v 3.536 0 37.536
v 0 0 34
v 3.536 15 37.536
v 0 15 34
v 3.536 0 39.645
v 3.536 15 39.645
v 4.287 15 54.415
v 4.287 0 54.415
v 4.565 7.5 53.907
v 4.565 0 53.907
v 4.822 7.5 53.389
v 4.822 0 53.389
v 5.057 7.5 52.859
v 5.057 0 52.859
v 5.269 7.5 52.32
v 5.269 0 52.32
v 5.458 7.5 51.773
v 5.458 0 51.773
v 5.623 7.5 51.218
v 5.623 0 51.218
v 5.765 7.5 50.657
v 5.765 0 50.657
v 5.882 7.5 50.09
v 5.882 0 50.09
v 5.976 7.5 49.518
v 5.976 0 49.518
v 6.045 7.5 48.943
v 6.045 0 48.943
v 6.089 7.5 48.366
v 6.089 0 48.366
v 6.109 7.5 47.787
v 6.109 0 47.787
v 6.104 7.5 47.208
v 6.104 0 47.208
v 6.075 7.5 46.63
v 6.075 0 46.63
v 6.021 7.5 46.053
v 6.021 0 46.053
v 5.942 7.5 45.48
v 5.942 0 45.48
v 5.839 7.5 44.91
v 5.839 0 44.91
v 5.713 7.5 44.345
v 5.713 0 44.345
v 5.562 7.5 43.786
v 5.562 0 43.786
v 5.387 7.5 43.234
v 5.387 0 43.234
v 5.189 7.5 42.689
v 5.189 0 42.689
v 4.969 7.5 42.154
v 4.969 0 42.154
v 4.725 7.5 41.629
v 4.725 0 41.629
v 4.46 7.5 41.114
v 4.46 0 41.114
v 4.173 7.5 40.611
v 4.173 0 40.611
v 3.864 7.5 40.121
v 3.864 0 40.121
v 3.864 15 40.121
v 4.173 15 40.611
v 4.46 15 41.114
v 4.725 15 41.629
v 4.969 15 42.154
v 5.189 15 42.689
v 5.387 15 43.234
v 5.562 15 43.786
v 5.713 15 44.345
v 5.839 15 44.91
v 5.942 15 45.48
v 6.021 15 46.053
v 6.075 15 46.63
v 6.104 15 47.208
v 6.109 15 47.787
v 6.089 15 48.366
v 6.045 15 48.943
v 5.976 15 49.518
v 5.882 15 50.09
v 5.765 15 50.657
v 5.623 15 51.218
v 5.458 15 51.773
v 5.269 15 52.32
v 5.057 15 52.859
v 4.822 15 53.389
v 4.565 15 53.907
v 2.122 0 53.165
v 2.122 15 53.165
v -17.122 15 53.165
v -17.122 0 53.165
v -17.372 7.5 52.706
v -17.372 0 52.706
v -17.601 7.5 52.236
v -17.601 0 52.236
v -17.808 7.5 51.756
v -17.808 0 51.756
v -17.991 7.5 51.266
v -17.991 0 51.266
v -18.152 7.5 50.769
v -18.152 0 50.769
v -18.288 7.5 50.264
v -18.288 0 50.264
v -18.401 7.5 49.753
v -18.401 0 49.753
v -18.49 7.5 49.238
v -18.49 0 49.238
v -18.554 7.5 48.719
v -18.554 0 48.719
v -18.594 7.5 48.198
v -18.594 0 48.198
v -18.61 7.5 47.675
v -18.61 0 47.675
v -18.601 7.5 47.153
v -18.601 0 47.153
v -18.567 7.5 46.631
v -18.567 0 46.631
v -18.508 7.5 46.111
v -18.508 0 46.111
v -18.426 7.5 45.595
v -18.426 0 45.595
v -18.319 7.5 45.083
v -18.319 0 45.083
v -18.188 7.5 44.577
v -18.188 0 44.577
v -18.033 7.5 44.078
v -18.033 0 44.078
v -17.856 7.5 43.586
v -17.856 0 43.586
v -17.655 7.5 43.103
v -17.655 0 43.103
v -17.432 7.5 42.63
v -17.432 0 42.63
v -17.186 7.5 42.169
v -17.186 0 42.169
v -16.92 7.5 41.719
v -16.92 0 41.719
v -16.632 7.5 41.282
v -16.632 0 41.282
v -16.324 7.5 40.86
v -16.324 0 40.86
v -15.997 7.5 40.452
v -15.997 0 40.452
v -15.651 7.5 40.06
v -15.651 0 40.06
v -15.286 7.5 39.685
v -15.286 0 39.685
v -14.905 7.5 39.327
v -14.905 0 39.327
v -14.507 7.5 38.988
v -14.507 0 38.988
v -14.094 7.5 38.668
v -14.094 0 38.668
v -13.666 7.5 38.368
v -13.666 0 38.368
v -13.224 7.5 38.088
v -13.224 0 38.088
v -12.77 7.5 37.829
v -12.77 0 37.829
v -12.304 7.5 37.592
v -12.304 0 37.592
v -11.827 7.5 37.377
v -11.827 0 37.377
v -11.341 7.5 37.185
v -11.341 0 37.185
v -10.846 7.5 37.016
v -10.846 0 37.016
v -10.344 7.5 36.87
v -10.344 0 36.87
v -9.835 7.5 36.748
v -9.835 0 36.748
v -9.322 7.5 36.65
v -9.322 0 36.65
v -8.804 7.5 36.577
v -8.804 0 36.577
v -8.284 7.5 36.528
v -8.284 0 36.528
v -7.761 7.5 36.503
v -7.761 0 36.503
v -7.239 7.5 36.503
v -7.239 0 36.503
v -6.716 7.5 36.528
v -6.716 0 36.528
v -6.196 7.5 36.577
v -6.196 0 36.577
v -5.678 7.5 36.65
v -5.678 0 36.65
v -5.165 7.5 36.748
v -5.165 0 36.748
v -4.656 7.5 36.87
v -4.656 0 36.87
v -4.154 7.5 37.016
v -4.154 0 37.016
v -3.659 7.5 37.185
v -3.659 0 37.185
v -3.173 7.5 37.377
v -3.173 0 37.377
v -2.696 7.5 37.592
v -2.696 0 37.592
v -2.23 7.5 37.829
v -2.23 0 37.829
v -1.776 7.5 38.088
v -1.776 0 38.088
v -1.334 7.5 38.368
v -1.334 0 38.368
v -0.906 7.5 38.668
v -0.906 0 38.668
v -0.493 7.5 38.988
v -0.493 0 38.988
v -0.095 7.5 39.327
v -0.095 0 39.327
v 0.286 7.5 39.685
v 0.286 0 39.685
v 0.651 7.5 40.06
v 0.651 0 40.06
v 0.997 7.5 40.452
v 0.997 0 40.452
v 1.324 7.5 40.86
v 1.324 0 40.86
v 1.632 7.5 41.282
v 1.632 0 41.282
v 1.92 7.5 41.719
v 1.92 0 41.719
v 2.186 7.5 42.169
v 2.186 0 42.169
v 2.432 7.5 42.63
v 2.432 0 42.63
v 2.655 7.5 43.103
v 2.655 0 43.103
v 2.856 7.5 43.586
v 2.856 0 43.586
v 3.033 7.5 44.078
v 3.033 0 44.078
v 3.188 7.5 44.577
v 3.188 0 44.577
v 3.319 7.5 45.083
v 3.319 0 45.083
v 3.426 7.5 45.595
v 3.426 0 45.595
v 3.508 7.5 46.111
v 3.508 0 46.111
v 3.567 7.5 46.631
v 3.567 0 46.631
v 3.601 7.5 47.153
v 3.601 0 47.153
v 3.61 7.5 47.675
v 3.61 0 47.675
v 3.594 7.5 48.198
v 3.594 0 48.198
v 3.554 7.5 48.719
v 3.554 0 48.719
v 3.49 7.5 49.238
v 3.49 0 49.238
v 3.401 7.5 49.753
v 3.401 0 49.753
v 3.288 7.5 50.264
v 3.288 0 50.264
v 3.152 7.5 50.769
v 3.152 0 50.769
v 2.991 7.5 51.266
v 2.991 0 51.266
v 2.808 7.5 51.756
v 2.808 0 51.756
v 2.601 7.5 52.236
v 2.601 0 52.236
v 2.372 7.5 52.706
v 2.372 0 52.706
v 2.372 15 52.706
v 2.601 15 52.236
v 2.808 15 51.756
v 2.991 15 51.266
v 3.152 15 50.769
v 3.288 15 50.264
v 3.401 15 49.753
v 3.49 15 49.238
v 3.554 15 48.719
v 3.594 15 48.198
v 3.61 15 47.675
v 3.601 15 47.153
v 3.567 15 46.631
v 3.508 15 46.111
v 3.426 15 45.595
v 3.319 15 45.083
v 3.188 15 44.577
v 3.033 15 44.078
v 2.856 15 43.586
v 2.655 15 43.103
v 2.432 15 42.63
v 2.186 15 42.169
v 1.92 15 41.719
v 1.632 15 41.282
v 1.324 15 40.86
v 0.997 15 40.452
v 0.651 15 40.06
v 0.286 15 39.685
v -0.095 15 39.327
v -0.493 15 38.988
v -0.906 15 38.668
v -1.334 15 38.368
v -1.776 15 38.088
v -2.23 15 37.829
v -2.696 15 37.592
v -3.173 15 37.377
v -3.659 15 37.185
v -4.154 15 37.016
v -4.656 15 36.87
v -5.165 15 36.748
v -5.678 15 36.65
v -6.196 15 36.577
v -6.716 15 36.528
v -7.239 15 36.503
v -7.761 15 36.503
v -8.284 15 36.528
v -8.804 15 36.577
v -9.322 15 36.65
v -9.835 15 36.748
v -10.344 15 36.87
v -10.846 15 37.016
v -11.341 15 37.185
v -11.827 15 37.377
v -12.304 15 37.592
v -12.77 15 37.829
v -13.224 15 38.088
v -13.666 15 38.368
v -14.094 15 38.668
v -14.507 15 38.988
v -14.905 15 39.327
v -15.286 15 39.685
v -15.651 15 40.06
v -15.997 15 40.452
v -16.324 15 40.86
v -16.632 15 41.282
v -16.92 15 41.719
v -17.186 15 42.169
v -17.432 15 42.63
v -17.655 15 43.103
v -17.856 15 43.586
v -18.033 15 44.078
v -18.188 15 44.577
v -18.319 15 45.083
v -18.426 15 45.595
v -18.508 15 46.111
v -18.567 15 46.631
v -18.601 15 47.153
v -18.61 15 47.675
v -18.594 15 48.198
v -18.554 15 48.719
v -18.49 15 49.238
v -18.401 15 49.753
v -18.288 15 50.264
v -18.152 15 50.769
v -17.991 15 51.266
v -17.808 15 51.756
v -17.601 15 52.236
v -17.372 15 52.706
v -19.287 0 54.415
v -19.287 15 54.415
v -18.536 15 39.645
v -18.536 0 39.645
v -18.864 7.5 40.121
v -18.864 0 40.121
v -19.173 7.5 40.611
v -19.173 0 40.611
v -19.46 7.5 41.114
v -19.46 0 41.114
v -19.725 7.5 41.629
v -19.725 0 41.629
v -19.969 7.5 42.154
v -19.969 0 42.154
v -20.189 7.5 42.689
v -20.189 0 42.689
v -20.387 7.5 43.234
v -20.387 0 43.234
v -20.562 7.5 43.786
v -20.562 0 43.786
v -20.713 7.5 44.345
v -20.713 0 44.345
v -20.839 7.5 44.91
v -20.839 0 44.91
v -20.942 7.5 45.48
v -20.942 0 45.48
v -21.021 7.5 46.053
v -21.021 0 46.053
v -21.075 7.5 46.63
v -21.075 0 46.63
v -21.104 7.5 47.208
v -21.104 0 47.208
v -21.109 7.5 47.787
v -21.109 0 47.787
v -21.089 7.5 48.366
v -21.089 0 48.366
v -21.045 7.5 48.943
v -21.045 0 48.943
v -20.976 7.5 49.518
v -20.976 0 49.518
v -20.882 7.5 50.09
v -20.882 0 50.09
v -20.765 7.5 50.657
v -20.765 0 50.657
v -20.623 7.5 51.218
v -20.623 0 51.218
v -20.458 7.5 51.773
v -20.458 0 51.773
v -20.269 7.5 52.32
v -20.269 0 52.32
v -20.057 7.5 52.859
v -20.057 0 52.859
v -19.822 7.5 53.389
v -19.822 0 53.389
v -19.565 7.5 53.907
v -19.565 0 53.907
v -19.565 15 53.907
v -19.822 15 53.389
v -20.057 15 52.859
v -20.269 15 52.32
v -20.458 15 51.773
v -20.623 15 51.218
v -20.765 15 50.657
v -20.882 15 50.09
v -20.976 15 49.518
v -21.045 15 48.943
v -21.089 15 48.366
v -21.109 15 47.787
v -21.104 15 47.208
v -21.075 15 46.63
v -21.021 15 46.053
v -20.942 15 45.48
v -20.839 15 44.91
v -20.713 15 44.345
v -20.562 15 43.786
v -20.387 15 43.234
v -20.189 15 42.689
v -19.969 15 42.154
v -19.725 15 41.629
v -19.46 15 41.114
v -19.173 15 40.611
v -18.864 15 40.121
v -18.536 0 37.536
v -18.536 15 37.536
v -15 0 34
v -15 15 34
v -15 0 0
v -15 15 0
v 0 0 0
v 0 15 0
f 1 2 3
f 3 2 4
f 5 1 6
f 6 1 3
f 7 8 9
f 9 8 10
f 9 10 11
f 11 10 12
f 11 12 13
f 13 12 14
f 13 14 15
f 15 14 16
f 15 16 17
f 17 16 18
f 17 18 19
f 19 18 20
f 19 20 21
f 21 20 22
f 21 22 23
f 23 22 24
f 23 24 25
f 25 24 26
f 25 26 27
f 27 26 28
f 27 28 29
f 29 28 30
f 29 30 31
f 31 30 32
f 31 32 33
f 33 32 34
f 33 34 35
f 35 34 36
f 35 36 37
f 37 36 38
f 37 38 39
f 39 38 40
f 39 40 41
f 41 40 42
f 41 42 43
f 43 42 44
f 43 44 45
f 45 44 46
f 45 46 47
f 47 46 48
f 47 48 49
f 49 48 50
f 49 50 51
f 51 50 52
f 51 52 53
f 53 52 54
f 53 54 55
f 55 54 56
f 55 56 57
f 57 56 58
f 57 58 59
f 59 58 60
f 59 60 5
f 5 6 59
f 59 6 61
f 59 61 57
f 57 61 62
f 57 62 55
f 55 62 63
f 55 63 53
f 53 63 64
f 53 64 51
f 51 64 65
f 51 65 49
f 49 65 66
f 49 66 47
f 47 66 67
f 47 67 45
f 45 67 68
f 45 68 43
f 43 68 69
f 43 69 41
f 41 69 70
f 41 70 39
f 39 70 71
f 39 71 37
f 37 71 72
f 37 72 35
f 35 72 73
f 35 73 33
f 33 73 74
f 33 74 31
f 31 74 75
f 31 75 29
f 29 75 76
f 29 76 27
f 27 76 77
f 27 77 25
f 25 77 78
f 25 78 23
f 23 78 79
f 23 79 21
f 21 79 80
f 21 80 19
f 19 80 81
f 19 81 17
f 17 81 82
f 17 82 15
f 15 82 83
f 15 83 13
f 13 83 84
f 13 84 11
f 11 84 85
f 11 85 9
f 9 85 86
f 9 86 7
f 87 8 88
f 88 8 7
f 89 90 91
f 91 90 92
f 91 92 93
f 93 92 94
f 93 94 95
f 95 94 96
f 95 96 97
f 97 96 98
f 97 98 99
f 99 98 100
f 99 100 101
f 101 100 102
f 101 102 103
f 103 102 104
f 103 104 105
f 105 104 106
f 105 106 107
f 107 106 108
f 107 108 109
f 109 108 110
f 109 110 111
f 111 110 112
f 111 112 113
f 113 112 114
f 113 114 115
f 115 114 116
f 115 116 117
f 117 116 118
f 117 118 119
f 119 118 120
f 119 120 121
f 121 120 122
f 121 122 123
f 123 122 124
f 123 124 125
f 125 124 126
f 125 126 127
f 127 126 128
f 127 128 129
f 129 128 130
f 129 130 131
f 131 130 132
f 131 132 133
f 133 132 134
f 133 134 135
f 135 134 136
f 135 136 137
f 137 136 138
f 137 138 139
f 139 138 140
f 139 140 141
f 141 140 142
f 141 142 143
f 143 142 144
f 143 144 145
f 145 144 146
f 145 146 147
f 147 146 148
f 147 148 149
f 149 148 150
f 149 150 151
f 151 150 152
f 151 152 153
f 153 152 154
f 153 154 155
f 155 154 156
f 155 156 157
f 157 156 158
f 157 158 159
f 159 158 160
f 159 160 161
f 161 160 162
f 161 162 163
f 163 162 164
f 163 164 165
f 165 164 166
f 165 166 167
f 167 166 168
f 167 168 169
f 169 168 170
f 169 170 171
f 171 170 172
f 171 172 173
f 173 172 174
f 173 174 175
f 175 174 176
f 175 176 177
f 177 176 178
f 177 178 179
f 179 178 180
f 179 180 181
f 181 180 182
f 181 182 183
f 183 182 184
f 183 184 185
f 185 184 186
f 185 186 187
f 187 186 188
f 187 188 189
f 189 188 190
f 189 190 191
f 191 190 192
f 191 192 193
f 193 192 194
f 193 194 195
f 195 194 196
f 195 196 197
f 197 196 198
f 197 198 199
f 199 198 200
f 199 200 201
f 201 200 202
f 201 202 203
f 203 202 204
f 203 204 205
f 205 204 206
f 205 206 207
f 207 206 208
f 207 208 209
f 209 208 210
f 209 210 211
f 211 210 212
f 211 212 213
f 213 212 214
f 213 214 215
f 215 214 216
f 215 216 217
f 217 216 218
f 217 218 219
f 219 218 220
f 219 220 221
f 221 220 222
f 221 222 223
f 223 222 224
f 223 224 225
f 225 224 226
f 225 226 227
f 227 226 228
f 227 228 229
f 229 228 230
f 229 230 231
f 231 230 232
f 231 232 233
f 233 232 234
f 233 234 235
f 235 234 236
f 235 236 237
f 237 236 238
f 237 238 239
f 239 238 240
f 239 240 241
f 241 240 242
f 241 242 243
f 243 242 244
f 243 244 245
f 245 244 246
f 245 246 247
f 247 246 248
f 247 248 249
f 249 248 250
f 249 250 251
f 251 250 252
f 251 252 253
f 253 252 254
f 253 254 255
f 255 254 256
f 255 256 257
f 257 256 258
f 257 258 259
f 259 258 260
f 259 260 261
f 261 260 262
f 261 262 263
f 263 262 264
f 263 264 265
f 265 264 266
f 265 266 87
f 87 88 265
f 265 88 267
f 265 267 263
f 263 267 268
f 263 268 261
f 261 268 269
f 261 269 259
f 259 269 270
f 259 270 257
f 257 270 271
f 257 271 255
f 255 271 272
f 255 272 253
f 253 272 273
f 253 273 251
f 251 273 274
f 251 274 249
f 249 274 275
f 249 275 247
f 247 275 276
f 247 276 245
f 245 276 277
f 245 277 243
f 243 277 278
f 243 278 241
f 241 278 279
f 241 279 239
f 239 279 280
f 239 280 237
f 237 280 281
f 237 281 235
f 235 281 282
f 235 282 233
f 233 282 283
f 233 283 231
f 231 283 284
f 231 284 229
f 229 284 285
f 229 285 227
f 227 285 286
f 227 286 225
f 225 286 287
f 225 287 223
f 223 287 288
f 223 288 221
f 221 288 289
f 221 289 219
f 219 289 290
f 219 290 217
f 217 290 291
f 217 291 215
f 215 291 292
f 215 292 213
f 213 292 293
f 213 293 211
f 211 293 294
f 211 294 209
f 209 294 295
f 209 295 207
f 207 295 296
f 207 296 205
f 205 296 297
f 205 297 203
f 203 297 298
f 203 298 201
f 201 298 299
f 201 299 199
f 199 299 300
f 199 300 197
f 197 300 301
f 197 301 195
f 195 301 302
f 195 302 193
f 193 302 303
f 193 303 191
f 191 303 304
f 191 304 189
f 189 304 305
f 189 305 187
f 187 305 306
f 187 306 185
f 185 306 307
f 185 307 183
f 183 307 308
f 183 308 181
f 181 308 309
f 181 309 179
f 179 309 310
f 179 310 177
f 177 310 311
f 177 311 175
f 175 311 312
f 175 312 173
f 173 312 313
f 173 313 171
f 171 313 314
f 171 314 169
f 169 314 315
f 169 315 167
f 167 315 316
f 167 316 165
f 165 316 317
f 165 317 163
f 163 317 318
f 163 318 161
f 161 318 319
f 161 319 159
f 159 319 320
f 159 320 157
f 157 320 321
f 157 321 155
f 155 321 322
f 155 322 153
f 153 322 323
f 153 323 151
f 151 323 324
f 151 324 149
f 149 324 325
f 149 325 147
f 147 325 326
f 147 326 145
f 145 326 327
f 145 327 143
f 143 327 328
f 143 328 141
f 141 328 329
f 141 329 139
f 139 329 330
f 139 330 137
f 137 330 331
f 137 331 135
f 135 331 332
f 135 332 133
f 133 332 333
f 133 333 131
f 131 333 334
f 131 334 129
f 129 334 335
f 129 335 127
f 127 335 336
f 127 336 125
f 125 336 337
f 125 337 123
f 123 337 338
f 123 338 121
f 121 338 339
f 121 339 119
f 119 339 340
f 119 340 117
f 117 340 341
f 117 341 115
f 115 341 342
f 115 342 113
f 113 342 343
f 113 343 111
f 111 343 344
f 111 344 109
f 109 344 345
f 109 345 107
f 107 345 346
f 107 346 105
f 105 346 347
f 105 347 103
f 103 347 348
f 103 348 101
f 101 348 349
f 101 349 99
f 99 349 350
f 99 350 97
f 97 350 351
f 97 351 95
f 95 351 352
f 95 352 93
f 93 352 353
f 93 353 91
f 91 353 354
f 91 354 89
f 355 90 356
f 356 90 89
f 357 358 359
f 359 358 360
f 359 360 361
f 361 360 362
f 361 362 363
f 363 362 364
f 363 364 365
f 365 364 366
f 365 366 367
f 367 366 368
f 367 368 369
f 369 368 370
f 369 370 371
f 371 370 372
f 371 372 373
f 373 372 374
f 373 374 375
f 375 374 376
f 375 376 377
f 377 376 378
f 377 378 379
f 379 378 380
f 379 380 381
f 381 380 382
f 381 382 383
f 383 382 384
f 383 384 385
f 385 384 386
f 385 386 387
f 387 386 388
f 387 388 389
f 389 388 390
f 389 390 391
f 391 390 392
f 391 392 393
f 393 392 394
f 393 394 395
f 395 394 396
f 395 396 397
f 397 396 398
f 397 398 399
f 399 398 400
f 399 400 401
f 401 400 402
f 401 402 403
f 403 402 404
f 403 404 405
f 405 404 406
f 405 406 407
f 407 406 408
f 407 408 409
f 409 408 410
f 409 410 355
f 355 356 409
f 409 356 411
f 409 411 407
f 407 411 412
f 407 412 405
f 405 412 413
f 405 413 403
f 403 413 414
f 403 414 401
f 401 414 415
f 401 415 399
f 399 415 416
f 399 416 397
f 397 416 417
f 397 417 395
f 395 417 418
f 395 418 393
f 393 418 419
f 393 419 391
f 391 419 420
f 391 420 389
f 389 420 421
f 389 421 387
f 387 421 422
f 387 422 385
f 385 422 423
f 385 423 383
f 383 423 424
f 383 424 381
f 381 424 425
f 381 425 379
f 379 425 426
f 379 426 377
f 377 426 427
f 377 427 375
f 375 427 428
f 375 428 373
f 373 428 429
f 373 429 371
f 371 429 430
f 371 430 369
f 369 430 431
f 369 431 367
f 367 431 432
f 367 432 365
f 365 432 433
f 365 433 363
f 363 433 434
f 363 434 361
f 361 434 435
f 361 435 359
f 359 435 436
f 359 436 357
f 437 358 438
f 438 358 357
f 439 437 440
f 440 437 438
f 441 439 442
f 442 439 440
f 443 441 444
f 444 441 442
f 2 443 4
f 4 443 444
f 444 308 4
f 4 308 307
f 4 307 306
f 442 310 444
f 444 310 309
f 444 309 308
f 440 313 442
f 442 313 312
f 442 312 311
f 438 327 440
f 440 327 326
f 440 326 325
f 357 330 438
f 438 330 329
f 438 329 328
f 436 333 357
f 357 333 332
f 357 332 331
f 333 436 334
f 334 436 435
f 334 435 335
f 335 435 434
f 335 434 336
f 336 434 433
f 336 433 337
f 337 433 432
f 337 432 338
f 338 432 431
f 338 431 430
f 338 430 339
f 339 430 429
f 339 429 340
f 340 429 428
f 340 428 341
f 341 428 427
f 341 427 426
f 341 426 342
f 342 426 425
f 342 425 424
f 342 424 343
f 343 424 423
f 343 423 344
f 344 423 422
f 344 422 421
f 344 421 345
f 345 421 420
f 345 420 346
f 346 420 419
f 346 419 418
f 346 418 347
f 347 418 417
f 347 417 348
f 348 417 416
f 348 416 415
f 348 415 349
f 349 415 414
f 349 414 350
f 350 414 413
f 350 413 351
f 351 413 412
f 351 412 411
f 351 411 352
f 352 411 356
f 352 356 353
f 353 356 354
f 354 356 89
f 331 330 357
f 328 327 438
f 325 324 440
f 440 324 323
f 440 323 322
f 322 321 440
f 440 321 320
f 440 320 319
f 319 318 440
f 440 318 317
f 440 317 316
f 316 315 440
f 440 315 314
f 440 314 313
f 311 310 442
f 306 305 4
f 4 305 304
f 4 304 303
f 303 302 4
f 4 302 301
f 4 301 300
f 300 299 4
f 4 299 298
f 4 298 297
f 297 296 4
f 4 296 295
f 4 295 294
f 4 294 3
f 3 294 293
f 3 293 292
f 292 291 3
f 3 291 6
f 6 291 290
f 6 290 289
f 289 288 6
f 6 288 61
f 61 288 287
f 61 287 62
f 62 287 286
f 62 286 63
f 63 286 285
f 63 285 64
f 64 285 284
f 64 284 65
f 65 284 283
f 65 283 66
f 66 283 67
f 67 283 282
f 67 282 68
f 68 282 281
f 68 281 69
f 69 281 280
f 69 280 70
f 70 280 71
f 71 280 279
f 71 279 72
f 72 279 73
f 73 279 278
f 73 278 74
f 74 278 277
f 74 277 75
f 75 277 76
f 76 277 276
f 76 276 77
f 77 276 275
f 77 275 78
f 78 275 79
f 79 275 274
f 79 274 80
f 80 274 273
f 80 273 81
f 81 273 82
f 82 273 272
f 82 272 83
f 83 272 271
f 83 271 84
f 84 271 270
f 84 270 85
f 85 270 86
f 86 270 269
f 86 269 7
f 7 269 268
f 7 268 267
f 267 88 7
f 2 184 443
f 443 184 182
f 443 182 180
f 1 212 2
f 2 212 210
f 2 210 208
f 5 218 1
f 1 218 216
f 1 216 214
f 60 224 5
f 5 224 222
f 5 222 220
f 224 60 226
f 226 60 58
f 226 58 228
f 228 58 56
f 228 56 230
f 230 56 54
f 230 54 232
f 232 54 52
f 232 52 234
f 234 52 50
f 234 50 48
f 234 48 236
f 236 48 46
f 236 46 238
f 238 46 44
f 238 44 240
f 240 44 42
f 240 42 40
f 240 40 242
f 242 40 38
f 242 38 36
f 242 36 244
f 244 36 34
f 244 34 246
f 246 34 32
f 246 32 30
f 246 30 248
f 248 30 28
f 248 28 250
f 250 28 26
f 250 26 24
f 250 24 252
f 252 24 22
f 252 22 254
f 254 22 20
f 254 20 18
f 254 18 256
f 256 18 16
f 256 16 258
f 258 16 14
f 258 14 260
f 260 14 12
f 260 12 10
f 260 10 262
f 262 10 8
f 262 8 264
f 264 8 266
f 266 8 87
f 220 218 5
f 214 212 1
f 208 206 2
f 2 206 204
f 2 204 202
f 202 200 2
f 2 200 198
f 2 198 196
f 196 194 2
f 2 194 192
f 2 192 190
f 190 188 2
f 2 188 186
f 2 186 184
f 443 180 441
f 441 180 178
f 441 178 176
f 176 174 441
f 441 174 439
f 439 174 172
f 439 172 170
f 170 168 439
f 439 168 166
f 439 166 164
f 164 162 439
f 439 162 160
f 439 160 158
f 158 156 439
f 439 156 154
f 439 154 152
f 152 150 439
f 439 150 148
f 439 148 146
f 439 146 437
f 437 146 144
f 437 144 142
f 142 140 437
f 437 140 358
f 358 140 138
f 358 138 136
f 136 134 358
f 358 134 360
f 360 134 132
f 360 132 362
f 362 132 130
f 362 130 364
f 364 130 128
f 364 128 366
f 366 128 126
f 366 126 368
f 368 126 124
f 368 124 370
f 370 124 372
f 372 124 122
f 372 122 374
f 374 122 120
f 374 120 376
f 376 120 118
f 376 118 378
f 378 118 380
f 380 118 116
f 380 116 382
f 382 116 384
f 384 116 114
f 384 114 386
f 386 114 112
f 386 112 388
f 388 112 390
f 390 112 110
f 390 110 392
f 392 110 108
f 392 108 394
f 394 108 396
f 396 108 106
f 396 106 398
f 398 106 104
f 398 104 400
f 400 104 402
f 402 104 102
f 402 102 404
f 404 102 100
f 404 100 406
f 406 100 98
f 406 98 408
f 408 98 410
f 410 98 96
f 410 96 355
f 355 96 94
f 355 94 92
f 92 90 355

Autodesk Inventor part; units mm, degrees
ref_plane "YZ Plane" through (0, 0, 0) normal (1, 0, 0) x (0, 1, 0)
ref_plane "XZ Plane" through (0, 0, 0) normal (0, 1, 0) x (-1, 0, 0)
ref_plane "XY Plane" through (0, 0, 0) normal (0, 0, 1) x (1, 0, 0)
sketch "Sketch1" plane through (0, 0, 0) normal (0, 1, 0) x (-1, 0, 0)
  line L0 (0, 0) -> (15, 0)
  line L1 (15, 0) -> (15, 34)
  line L2 (15, 34) -> (0, 34)
  line L3 (0, 34) -> (0, 0)
  line L4 (7.5, 34) -> (7.5, 36.5)
  line L5 (7.5, 36.5) -> (7.5, 47.61)
  circle A0 centre (7.5, 47.61) radius 11.11
  circle A1 centre (7.5, 47.61) radius 13.61
  line L6 (7.5, 47.61) -> (19.2866, 54.415)
  line L7 (7.5, 47.61) -> (21.11, 47.61) construction
  line L8 (7.5, 47.61) -> (-4.2866, 54.415)
  line L9 (7.5, 47.61) -> (21.11, 47.61) construction
  line L10 (15, 34) -> (18.5355, 37.5355)
  line L11 (15, 34) -> (20, 34) construction
  line L12 (18.5355, 37.5355) -> (18.5355, 39.6445)
  line L13 (0, 34) -> (-3.5355, 37.5355)
  line L14 (-3.5355, 37.5355) -> (-3.5355, 39.6445)
  point P0 (17.1215, 53.165)
  point P1 (-2.1215, 53.165)
  dimension "d0" = 15
  dimension "d1" = 34
  dimension "d2" = 2.5
  dimension "d3" = 11.11
  dimension "d4" = 30
  dimension "d5" = 150
  dimension "d6" = 5
  dimension "d7" = 45
extrude "Extrusion1" add sketch "Sketch1" along normal blind 15 contours L3 L2 L1 L0 | L13 L14 A1 L2 | L2 A1 L12 L10 | A1 L8 A0 L4 | L4 A0 L6 A1
equation "\"d8\" = d0"
properties part number "motor holder"
